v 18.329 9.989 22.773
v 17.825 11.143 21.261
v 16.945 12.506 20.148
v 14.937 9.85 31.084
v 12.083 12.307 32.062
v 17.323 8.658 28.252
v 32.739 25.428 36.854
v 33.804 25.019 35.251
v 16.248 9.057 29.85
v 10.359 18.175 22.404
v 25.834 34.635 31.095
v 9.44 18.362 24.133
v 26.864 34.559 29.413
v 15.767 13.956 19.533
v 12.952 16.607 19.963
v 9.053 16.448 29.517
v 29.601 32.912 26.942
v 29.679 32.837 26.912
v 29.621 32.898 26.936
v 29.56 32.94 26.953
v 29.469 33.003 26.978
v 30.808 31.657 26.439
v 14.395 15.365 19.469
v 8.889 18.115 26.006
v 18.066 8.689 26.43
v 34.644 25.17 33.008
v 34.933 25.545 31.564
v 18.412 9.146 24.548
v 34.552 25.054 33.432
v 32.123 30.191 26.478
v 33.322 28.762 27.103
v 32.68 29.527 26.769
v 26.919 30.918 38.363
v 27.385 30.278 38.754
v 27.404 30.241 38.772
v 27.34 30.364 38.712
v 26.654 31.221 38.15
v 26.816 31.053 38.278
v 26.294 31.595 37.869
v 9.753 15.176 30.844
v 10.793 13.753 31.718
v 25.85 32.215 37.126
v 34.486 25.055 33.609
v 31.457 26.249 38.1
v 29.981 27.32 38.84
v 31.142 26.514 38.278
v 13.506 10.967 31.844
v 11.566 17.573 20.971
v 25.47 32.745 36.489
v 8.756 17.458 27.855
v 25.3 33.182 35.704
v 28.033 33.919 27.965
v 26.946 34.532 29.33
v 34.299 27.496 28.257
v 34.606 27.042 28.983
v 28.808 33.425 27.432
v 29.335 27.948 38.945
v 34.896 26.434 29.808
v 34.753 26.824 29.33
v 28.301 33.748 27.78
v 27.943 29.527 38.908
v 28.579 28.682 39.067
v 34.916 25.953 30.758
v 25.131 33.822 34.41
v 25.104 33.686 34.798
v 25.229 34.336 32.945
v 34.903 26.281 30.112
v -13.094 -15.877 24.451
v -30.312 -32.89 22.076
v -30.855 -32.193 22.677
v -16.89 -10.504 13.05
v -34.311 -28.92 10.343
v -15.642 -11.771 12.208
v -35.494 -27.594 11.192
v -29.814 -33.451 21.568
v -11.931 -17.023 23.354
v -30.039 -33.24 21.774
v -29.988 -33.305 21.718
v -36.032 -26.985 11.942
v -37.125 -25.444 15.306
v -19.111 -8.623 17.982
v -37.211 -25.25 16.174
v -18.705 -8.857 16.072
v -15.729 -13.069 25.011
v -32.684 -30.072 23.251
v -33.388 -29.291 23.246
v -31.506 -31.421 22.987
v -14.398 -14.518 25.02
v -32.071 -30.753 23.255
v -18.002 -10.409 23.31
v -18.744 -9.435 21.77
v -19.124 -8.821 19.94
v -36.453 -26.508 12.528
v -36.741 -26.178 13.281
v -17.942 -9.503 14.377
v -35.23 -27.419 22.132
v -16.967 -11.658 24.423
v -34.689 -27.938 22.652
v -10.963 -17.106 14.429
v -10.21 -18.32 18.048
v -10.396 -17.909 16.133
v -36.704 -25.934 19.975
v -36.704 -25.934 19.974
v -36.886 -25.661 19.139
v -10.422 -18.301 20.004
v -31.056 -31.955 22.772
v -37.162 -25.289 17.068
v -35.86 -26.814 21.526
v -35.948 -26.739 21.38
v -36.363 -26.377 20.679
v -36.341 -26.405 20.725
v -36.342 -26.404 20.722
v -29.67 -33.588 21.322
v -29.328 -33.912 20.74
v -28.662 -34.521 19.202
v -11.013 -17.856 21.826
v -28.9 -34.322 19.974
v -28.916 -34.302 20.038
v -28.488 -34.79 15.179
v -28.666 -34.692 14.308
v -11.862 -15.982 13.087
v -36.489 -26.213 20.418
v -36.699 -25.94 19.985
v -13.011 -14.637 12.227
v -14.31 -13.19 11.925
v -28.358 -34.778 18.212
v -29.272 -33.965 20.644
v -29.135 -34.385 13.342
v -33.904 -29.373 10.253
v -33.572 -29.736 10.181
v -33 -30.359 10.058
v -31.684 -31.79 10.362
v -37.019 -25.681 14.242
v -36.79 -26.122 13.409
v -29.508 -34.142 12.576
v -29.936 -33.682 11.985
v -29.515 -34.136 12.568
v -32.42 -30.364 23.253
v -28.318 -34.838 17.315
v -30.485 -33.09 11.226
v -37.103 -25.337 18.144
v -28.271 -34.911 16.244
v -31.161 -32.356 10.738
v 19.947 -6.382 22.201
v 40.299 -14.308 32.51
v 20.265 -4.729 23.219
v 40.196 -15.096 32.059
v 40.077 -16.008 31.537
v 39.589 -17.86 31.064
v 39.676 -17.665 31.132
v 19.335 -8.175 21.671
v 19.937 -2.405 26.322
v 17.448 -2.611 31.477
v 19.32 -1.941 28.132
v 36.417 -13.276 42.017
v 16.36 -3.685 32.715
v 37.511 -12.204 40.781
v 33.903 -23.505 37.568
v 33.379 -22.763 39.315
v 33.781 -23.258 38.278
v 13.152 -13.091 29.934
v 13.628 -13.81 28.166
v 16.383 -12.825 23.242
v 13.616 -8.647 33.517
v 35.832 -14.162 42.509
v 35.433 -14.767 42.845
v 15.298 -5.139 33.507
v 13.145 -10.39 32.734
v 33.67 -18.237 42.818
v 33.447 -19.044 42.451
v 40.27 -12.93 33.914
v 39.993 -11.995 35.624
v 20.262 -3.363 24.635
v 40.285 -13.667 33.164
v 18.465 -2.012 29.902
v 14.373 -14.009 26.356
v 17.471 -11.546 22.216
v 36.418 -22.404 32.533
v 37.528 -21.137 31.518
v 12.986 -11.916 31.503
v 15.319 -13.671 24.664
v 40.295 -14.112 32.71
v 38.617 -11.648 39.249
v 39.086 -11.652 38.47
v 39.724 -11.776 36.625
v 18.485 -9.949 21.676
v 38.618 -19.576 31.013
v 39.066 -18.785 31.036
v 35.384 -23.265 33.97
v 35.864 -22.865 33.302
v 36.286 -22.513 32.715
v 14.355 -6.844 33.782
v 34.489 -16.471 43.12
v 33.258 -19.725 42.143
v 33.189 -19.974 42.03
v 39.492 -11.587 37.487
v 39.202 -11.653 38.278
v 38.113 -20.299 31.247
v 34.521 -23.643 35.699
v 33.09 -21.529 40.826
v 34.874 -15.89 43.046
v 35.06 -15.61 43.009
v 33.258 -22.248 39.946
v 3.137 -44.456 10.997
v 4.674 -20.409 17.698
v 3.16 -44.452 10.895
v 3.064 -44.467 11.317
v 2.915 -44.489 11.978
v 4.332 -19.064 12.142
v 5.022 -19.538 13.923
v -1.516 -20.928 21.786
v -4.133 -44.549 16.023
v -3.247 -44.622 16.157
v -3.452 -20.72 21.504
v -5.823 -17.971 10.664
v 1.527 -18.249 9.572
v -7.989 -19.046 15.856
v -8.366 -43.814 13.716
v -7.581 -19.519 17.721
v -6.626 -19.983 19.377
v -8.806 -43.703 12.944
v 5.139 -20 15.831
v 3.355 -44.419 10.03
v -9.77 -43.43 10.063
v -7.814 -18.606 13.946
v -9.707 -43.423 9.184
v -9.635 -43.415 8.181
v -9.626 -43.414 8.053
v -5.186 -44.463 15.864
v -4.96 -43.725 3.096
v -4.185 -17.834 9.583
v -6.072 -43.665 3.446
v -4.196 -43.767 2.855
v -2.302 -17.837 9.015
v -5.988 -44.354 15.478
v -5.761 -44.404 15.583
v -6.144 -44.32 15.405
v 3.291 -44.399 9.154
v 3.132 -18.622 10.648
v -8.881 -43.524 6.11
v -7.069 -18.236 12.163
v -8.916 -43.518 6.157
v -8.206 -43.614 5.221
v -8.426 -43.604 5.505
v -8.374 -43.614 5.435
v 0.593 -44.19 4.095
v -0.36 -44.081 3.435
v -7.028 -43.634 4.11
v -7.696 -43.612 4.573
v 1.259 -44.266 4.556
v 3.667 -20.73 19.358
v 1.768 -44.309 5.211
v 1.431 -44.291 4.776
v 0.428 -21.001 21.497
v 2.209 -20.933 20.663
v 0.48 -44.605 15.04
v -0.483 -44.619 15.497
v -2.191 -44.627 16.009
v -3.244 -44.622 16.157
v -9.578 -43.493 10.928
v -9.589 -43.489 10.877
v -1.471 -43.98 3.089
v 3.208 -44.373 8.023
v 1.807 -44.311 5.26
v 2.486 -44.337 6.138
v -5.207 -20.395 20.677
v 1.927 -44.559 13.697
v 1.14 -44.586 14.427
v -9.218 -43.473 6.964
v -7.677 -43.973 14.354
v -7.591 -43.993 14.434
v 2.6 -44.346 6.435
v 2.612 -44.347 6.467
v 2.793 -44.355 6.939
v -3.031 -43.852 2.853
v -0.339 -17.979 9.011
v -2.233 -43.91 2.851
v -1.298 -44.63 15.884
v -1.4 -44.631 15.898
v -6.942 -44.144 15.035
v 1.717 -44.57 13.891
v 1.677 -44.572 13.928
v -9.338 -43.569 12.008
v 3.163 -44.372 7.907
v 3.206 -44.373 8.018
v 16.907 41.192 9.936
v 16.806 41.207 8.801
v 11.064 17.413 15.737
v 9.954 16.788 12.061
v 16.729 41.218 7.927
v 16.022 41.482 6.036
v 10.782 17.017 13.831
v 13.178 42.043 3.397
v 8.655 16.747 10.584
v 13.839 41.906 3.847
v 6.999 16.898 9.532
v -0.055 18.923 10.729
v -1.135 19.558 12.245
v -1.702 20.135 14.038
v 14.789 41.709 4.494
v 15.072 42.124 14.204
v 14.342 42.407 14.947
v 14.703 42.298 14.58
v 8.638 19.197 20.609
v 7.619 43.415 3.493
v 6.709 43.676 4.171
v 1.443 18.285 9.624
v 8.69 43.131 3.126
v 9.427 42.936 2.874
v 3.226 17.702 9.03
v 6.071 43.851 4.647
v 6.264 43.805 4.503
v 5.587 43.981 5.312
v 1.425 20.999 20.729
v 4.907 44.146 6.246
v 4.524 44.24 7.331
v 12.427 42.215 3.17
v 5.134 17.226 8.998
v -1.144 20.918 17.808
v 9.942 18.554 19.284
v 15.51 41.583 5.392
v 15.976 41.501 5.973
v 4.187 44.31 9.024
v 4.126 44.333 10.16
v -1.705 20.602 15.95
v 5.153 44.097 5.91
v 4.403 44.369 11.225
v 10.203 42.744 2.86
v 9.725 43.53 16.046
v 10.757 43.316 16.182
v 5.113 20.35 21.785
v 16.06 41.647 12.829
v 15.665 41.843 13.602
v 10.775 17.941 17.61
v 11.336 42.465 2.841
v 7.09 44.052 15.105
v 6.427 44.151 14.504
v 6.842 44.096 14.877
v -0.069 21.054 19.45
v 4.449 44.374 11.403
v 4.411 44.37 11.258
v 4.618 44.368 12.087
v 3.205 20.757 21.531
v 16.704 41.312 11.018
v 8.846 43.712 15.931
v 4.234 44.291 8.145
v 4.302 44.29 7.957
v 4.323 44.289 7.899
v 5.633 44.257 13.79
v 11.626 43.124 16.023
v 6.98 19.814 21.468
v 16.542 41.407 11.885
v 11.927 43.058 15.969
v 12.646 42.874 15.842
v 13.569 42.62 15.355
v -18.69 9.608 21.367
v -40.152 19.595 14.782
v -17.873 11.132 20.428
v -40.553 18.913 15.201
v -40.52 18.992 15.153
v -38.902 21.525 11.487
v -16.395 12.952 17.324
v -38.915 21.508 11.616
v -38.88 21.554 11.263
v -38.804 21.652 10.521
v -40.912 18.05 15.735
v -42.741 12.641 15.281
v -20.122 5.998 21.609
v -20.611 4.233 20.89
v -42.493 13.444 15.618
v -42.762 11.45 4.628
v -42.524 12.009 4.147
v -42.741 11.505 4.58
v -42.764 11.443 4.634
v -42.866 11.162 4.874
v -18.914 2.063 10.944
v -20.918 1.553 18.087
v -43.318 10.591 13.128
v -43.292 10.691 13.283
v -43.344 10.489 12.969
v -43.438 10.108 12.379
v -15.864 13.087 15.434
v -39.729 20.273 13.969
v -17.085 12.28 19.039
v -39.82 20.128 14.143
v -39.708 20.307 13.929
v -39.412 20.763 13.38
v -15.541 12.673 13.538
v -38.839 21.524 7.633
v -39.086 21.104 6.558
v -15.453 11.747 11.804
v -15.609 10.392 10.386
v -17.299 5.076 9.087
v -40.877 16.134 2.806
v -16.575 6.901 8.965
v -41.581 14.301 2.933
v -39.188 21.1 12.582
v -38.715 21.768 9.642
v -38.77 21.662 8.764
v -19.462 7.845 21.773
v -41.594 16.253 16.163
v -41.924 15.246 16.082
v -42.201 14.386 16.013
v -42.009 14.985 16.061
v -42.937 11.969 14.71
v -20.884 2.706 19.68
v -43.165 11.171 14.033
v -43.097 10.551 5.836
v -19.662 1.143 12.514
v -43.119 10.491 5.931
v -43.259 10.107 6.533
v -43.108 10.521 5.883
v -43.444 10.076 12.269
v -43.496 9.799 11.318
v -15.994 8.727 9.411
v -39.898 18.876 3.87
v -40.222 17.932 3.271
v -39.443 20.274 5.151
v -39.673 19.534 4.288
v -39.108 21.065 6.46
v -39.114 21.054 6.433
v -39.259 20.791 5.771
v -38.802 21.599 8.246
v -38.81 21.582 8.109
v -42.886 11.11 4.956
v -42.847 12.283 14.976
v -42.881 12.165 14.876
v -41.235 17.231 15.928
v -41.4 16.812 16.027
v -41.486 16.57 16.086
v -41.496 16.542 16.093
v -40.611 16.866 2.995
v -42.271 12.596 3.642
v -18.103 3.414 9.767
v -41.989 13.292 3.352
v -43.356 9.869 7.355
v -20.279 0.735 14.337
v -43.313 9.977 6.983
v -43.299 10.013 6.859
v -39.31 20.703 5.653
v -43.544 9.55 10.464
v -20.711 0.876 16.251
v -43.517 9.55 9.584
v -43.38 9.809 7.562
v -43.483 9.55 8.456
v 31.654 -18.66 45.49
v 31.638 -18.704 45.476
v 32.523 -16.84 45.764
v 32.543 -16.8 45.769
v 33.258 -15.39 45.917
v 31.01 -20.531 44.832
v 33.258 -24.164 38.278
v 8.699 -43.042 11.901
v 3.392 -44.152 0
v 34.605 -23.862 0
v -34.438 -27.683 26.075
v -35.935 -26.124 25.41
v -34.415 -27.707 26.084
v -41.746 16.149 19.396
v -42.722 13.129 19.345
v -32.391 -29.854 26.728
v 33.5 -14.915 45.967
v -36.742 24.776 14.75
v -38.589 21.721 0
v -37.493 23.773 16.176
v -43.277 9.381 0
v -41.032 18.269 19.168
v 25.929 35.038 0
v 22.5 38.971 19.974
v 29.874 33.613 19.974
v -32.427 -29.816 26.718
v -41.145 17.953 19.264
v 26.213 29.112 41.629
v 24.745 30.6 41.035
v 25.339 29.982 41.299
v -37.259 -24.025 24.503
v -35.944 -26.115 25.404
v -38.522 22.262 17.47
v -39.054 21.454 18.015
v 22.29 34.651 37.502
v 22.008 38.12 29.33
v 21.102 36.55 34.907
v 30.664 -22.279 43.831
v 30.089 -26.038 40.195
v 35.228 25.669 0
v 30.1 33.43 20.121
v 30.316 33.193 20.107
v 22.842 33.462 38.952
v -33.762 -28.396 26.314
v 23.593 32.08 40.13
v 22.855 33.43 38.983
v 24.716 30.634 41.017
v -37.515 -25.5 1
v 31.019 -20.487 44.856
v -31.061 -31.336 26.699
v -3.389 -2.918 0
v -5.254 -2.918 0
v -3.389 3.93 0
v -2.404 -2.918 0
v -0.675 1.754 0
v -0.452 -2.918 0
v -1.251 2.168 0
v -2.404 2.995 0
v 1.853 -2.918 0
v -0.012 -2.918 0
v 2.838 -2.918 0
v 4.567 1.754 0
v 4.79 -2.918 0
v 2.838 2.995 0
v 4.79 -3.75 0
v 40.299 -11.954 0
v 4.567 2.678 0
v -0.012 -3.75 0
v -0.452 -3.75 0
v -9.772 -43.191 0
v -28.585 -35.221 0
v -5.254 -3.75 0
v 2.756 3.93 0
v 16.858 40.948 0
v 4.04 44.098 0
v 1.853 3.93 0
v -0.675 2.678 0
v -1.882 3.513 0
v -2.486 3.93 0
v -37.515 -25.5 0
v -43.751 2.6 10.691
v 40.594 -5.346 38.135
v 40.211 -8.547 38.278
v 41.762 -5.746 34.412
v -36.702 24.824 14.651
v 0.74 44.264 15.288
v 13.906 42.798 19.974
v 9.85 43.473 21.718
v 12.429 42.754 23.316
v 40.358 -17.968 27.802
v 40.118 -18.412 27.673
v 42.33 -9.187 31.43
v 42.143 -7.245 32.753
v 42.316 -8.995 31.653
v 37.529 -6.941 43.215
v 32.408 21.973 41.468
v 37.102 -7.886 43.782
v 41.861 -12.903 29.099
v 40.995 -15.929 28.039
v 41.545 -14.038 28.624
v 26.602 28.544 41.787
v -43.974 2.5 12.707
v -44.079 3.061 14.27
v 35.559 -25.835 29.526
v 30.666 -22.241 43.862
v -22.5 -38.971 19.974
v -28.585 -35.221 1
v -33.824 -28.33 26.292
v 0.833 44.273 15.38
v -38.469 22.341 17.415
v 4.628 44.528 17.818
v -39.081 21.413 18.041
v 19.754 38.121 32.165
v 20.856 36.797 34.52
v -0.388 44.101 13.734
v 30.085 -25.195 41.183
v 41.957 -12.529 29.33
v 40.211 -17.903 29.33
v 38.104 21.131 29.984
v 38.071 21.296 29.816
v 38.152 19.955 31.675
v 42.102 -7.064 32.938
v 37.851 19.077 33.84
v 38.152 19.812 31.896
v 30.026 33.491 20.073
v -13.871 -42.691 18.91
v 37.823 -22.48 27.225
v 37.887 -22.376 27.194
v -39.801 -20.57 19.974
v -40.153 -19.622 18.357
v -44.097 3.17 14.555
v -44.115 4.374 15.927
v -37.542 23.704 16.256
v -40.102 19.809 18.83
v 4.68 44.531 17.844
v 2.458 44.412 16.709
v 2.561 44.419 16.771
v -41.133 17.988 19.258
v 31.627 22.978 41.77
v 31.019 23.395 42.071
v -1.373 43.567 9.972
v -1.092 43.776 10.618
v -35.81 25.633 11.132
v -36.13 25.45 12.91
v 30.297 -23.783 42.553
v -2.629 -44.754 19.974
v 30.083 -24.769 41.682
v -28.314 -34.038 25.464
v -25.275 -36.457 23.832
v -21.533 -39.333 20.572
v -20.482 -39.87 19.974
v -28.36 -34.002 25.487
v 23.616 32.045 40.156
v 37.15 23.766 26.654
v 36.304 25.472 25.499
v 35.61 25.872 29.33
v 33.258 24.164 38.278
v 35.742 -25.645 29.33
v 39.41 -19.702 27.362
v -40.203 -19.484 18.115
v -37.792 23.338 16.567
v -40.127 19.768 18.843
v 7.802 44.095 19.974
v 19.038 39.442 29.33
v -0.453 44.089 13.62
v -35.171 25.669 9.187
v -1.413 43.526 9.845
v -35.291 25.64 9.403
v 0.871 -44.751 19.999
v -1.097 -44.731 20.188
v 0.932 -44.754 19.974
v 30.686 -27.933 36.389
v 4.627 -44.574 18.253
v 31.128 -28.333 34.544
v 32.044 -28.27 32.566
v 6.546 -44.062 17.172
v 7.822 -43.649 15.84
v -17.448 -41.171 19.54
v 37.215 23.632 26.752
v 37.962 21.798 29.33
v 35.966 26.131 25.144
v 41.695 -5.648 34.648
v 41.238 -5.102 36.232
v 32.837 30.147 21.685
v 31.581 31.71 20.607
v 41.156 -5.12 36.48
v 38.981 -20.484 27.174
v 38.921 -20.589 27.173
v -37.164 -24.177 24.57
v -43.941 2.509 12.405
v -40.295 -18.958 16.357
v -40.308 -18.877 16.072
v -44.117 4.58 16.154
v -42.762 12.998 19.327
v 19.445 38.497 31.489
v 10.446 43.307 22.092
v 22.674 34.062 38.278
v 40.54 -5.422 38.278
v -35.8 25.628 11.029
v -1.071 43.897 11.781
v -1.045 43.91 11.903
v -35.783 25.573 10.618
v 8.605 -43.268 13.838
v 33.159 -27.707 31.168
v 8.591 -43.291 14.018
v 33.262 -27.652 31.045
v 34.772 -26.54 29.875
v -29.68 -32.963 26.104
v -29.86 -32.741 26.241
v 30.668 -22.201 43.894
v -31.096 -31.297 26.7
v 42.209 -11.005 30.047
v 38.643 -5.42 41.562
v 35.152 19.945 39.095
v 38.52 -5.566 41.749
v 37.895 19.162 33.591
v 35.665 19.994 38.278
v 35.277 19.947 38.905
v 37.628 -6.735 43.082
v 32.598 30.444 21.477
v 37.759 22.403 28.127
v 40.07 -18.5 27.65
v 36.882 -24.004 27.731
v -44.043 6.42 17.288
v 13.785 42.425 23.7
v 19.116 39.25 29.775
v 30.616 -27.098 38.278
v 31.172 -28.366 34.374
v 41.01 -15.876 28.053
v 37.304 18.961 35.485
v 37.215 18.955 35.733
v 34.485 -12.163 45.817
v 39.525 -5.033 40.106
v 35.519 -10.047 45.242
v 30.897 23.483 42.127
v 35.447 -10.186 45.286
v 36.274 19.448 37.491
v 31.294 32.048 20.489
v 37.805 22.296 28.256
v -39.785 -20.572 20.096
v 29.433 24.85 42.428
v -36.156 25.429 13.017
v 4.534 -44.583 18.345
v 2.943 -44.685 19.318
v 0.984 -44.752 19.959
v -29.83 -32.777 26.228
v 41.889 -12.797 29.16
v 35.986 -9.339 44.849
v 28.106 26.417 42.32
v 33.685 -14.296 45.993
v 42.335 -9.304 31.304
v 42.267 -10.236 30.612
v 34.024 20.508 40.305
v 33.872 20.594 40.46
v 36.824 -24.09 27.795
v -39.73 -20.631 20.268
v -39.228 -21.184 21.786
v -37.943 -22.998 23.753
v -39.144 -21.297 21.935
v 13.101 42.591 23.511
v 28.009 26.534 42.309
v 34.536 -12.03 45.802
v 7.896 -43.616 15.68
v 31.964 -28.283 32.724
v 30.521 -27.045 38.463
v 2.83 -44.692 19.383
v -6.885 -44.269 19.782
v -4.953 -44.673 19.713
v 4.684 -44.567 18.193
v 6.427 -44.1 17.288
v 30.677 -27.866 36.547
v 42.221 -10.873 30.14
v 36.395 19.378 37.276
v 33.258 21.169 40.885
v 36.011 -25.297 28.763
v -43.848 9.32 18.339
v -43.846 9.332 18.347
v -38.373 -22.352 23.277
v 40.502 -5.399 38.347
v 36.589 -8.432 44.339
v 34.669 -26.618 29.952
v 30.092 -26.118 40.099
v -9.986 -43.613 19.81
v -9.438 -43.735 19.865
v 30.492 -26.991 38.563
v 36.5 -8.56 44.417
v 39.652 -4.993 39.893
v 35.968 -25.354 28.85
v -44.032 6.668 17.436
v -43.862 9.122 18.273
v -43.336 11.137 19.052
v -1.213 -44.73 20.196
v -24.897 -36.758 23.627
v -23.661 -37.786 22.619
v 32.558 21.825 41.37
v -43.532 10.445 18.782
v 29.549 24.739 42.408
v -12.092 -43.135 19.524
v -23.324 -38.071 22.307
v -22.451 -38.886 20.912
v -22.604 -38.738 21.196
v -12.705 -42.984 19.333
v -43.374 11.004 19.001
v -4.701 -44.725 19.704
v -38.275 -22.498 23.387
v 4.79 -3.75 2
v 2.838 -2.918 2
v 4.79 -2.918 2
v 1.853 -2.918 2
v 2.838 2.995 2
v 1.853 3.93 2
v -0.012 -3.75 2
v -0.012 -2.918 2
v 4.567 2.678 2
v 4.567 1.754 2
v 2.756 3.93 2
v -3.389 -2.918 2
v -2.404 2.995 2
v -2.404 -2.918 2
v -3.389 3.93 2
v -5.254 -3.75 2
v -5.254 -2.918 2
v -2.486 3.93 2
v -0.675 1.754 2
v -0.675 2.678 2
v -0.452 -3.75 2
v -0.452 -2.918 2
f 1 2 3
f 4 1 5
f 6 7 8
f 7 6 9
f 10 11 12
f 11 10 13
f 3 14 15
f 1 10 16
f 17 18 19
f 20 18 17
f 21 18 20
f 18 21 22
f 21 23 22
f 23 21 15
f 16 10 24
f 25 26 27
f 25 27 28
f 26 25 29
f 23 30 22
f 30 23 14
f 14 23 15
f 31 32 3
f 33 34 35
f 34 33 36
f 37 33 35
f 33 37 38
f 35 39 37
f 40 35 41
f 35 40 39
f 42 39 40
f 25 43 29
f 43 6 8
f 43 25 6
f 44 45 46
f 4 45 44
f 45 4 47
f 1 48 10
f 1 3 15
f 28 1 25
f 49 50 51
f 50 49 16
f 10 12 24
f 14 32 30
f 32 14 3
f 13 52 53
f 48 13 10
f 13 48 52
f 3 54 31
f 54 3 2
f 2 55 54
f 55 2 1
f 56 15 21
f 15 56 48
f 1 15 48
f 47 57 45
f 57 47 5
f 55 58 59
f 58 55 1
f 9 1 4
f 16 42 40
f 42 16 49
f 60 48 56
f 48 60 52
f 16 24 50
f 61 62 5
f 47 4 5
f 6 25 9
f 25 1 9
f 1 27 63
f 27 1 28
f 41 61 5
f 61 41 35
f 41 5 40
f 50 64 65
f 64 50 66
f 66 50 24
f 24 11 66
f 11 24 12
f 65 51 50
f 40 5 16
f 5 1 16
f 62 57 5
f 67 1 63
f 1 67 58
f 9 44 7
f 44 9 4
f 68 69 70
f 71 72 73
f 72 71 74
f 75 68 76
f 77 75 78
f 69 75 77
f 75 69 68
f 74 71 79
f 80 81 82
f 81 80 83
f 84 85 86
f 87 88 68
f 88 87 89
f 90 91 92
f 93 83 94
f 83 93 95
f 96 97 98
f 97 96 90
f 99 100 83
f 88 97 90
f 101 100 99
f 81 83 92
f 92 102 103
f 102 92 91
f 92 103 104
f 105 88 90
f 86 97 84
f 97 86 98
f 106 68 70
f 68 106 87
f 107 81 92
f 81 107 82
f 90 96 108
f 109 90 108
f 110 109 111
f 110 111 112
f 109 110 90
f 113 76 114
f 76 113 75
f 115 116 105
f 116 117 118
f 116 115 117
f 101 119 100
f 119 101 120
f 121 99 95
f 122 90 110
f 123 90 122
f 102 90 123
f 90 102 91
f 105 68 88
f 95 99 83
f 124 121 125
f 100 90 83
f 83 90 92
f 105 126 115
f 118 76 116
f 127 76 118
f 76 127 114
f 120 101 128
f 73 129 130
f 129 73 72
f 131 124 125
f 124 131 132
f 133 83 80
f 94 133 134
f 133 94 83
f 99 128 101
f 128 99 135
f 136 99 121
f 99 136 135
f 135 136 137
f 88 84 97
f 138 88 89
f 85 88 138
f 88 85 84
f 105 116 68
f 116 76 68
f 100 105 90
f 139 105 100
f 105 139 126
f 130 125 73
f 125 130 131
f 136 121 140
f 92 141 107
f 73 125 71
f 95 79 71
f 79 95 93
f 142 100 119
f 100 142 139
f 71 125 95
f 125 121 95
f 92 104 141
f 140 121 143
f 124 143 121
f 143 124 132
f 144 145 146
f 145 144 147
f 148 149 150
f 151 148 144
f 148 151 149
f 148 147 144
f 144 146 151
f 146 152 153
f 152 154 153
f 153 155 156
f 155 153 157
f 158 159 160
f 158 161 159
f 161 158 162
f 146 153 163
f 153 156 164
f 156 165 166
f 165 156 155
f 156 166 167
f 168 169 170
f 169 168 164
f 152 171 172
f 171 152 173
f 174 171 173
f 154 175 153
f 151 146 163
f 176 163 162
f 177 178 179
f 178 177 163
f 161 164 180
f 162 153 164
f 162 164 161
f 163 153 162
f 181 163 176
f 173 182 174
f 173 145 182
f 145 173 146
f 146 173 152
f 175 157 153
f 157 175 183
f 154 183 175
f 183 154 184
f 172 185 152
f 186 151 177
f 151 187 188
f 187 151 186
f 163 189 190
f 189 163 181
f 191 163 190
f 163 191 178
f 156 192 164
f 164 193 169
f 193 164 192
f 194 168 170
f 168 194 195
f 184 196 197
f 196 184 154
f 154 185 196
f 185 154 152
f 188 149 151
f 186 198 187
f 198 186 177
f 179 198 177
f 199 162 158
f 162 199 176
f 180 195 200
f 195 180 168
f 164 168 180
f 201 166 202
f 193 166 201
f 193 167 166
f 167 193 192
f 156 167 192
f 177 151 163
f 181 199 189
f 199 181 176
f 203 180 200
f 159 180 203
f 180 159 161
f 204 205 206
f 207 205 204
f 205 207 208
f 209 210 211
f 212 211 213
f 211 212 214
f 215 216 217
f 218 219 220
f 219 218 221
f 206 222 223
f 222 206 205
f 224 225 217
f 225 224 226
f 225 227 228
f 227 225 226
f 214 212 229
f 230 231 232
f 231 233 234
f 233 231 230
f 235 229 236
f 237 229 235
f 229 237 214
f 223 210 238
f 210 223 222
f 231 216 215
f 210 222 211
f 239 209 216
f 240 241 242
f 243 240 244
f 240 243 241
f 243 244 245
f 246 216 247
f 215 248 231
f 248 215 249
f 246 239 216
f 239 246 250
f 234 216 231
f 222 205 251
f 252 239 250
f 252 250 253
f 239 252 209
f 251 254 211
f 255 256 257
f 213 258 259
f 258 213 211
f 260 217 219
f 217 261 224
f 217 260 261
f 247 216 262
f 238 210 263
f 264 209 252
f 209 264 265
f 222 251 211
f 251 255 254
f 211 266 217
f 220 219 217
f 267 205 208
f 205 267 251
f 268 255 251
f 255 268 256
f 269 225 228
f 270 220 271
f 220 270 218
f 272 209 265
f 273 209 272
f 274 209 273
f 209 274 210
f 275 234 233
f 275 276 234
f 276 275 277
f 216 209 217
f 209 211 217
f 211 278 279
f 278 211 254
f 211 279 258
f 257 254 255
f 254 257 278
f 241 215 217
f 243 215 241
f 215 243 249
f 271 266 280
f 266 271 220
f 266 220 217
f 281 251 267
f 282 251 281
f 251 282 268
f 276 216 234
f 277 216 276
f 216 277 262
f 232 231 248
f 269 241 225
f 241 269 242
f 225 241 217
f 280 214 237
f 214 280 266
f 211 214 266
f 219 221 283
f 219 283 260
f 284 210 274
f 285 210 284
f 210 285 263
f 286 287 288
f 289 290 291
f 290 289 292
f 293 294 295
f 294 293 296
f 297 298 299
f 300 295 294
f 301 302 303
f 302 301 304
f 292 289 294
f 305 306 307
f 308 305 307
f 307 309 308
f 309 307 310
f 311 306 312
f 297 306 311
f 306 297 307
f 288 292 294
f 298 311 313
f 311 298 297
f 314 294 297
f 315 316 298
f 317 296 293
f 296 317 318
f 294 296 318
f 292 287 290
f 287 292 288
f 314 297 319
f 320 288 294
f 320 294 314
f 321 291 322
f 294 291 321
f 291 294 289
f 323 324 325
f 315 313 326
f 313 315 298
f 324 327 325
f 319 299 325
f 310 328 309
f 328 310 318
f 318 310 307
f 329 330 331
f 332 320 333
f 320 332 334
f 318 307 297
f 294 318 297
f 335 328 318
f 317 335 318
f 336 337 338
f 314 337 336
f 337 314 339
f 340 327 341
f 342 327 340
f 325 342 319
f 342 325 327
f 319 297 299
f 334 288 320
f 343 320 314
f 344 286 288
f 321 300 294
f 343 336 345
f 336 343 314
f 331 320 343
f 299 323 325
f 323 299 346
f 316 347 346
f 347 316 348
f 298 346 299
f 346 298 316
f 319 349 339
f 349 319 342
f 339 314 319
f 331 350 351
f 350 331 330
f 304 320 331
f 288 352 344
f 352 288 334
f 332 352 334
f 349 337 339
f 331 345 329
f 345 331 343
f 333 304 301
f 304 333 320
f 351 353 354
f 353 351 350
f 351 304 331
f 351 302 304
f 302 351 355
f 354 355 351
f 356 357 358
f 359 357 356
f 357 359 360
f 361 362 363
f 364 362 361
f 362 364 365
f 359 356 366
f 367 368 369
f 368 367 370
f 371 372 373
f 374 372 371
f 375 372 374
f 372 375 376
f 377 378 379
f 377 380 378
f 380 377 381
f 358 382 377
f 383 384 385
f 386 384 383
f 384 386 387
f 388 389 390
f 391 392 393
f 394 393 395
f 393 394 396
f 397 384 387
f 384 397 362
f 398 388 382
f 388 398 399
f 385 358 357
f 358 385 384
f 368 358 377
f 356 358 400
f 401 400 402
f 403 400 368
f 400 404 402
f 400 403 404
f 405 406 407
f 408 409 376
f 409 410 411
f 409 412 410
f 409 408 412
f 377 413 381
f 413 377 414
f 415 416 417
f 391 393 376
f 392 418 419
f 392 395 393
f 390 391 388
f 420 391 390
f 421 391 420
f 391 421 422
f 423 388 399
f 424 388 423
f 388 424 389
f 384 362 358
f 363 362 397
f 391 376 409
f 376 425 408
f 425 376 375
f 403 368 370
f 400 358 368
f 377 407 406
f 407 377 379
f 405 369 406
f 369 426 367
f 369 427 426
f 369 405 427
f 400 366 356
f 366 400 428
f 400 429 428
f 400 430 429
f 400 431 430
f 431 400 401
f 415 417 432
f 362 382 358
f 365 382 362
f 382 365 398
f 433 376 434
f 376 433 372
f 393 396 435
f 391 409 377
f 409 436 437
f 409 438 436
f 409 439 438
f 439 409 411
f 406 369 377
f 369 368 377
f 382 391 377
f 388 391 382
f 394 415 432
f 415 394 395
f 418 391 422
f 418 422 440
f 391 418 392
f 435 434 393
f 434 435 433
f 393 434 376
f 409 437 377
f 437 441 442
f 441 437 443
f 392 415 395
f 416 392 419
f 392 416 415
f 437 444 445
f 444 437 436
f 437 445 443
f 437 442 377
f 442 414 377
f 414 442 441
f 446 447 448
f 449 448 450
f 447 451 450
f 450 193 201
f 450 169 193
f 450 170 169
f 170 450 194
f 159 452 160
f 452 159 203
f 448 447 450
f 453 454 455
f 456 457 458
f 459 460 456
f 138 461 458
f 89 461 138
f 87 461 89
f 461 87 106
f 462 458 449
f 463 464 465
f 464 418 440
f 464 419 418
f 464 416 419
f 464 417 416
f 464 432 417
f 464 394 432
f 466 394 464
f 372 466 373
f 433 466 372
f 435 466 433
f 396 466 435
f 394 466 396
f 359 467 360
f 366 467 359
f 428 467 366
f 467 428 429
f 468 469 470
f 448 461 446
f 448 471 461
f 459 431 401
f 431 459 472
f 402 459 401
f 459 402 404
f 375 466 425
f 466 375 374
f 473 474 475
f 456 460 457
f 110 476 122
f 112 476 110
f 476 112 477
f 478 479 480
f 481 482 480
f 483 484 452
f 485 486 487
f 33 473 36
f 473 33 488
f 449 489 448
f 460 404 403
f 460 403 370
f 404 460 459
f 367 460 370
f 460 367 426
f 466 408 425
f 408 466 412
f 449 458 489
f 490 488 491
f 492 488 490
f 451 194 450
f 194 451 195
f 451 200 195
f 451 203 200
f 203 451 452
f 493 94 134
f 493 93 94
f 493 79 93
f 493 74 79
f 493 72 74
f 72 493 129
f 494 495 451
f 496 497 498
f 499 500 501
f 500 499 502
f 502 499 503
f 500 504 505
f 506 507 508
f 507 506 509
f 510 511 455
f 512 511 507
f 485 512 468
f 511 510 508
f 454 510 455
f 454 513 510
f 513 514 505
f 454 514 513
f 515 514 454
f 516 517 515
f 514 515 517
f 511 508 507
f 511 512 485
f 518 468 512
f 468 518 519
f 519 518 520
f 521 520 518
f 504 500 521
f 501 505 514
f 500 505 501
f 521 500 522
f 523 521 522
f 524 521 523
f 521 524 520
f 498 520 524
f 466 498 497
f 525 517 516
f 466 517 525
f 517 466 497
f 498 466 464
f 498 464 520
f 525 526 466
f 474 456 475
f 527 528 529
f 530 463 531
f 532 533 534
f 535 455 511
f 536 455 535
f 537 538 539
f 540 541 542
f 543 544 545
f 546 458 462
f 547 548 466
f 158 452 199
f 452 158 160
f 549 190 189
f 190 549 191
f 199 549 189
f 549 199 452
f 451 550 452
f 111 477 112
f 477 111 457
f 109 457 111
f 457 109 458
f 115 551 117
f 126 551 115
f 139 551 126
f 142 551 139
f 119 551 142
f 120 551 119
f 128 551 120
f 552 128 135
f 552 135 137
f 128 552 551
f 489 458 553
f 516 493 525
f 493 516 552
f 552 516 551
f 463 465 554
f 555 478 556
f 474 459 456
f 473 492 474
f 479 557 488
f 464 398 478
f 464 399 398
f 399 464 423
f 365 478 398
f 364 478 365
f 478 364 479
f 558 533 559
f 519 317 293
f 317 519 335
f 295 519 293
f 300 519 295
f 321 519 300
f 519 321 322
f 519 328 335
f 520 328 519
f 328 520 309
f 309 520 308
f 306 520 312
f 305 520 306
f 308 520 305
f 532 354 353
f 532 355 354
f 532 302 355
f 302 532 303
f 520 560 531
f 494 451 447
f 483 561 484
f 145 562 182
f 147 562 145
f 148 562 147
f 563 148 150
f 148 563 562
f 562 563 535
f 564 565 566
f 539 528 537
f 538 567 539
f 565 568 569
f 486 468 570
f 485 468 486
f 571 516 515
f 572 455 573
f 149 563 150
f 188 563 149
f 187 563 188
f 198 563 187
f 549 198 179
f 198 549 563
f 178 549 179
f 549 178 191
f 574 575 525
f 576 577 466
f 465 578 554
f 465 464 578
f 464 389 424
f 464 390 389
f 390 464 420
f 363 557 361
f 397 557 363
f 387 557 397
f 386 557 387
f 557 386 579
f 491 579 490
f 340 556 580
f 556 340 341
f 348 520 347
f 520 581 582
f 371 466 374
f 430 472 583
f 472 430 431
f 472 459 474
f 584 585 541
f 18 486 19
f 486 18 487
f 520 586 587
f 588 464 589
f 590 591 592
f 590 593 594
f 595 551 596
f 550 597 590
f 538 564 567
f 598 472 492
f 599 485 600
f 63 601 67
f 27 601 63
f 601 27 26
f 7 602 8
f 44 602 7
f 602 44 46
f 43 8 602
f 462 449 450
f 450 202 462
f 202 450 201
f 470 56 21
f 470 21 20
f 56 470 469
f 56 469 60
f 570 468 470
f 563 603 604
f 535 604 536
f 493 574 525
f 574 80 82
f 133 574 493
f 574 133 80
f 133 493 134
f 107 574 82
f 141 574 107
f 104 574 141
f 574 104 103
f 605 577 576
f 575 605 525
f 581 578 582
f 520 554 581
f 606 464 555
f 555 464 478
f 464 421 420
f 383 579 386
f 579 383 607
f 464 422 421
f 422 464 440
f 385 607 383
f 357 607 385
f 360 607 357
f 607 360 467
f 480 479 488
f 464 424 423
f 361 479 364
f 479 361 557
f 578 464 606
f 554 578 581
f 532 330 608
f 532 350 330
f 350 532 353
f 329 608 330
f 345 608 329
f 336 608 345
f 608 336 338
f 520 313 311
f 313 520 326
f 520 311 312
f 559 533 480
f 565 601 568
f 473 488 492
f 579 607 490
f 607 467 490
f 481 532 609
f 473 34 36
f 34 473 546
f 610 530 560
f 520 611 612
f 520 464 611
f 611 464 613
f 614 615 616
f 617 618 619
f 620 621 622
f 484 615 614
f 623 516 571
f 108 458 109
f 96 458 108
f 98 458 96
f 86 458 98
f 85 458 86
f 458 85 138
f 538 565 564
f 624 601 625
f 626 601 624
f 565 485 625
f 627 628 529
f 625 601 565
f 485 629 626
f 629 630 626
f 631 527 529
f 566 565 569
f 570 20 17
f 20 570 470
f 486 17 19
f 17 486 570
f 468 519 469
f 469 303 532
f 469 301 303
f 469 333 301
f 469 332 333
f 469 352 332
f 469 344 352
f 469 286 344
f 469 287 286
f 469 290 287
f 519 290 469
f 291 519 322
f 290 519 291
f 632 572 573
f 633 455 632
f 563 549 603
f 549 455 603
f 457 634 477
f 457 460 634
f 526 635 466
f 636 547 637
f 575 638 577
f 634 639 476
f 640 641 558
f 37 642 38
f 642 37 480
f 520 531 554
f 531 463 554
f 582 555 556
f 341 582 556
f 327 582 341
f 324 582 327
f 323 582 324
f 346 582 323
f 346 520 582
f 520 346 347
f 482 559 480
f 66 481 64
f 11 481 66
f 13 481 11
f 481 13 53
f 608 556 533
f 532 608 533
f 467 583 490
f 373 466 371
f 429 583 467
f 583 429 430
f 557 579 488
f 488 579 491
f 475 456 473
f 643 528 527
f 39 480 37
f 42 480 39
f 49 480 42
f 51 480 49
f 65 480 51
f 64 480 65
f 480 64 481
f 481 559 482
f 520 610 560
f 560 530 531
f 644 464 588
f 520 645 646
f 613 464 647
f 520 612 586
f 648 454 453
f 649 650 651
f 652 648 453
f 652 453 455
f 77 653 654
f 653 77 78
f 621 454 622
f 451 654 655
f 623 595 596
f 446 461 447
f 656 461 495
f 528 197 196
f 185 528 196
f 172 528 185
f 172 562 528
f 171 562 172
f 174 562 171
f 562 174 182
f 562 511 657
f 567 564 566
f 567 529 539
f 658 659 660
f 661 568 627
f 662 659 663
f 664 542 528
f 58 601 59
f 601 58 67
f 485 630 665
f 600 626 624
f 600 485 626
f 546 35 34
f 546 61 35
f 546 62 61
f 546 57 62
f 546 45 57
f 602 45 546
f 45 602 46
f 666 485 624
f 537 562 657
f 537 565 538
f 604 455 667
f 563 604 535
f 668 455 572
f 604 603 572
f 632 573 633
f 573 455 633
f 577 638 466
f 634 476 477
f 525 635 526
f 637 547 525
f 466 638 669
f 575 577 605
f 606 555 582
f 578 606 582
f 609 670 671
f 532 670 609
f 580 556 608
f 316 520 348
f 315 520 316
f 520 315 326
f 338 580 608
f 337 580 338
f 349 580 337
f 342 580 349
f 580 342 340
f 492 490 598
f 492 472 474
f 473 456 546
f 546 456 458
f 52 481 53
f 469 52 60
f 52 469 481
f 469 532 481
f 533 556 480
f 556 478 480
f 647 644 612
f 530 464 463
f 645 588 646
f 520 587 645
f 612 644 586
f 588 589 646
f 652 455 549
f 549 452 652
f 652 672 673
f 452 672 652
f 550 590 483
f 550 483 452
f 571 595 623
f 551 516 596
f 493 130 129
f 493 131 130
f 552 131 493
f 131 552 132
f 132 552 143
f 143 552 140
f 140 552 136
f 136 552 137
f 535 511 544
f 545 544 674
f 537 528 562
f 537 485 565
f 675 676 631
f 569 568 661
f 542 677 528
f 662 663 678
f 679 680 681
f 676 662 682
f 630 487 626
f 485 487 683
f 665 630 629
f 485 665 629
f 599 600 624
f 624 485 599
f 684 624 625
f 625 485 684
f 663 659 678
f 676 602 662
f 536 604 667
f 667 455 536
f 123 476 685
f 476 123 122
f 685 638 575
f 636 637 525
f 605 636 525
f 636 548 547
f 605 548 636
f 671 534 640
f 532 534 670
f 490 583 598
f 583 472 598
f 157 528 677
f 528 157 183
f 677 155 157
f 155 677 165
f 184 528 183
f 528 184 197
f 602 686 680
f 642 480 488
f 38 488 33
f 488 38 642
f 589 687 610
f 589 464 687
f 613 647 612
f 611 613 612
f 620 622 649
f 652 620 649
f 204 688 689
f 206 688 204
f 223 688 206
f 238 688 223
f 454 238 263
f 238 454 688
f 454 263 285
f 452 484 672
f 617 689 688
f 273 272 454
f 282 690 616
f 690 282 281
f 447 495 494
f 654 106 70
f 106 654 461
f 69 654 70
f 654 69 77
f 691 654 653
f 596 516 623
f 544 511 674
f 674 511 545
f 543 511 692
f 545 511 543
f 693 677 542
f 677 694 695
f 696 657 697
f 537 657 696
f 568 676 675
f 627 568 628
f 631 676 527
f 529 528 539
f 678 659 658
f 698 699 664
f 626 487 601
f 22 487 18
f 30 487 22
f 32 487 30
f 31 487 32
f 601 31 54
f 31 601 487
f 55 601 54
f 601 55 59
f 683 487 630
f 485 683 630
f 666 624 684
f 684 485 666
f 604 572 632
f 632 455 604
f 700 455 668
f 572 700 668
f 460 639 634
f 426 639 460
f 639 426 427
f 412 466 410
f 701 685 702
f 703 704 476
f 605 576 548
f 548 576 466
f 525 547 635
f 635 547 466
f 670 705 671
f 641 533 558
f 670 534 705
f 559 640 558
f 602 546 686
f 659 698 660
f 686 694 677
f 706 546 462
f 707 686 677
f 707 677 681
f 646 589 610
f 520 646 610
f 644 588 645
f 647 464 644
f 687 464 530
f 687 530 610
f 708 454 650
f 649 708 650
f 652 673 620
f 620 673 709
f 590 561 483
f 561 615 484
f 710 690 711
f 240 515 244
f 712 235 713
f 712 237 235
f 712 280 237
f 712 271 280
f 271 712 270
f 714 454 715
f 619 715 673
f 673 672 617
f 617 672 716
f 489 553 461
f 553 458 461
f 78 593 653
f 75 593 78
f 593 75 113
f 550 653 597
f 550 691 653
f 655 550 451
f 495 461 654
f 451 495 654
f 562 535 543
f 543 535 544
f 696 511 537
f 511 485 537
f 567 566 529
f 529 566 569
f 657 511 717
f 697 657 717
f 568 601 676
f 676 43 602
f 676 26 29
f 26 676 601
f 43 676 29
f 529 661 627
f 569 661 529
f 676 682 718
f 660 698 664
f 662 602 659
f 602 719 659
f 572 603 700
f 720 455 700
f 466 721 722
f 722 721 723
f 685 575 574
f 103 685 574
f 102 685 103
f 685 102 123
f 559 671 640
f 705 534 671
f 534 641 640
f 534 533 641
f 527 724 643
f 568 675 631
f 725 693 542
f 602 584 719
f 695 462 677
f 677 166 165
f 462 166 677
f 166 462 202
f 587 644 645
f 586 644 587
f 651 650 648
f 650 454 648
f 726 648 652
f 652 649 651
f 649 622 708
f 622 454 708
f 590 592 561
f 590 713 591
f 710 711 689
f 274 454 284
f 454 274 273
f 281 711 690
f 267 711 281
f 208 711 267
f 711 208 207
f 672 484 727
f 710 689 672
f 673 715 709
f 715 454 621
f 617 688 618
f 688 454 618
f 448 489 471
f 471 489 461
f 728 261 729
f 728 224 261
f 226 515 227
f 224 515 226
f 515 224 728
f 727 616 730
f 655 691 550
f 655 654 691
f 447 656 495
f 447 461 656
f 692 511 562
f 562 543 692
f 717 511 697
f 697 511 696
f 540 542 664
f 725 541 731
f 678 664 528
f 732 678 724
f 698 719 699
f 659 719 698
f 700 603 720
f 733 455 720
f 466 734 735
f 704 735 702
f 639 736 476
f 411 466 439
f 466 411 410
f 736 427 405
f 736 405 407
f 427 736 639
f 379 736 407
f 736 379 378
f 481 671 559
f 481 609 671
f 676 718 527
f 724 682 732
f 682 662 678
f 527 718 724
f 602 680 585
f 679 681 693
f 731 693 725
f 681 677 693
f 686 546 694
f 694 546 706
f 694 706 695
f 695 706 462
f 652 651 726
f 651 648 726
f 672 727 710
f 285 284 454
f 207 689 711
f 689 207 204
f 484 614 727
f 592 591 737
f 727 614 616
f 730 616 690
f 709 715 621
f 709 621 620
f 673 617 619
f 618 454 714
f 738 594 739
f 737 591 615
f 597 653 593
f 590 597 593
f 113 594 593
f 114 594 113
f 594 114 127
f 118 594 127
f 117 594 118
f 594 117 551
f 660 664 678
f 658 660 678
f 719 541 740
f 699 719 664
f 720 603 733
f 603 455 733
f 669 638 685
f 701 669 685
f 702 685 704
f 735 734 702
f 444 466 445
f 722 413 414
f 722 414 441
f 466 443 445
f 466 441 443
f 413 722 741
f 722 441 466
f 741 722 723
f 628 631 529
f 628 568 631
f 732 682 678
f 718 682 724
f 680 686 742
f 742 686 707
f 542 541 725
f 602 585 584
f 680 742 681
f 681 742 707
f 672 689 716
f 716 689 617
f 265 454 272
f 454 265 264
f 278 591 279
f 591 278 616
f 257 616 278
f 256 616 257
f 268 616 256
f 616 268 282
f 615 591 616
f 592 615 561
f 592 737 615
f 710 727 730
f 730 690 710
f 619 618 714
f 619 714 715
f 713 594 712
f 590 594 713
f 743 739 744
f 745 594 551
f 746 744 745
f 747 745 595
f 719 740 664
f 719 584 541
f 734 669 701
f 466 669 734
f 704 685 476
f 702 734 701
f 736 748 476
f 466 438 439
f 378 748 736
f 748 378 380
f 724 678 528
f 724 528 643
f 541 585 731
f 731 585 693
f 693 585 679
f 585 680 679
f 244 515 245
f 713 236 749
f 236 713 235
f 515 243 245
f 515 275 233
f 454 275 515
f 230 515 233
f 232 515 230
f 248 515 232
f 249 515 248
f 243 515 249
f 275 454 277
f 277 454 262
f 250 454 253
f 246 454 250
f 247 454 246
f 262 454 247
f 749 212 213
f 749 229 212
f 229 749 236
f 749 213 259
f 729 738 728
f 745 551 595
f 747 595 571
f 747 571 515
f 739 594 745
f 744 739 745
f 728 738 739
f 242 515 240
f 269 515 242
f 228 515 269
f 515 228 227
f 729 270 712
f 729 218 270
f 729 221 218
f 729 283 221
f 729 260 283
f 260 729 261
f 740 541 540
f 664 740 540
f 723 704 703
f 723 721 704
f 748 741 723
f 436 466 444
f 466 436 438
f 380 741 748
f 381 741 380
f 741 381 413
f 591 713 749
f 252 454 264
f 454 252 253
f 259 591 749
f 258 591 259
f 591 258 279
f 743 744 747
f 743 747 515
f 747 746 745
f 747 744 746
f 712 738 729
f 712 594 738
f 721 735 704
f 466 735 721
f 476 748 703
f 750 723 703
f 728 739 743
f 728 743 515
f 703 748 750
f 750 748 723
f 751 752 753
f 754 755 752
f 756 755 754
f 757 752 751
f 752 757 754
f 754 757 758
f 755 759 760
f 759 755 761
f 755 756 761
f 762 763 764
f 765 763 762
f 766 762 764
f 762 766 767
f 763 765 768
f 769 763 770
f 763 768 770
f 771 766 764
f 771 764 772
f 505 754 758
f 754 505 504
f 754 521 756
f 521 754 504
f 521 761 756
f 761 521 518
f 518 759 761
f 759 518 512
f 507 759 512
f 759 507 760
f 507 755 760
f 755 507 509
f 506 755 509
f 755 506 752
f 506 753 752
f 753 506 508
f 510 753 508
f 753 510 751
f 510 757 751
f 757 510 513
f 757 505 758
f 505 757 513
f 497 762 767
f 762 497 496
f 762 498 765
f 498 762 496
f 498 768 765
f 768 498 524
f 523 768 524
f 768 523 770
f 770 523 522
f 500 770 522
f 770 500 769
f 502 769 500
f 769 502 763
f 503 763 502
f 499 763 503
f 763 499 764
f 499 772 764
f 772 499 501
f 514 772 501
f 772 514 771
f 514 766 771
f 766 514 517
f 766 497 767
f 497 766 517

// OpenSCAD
difference() {
	difference() {
		difference() {
			hull() {
				union() {
					union() {
						rotate(a = 44.7886434991, v = [0, 0, 1]) {
							translate(v = [0, -6.6000000000, 0]) {
								cube(size = [43.0855385085, 13.2000000000, 1]);
							}
						}
						rotate(a = -137.4284145433, v = [0, 0, 1]) {
							translate(v = [0, -6.6000000000, 0]) {
								cube(size = [44.8787159826, 13.2000000000, 1]);
							}
						}
						rotate(a = -25.5551377076, v = [0, 0, 1]) {
							translate(v = [0, -6.6000000000, 0]) {
								cube(size = [41.5129387036, 13.2000000000, 1]);
							}
						}
						rotate(a = -94.1777278702, v = [0, 0, 1]) {
							translate(v = [0, -6.6000000000, 0]) {
								cube(size = [43.7878214328, 13.2000000000, 1]);
							}
						}
						rotate(a = 76.1941204399, v = [0, 0, 1]) {
							translate(v = [0, -6.6000000000, 0]) {
								cube(size = [43.7878237981, 13.2000000000, 1]);
							}
						}
						rotate(a = 159.1977941195, v = [0, 0, 1]) {
							translate(v = [0, -6.6000000000, 0]) {
								cube(size = [43.7878219417, 13.2000000000, 1]);
							}
						}
					}
					translate(v = [0, 0, 19.9743286130]) {
						intersection() {
							hull() {
								rotate(a = 73.2270811909, v = [-0.6745215807, 0.6795164716, -0.0000000050]) {
									cylinder(h = 45, r = 9.6000000000);
								}
								rotate(a = 94.2076451547, v = [0.6746874302, -0.7344477709, 0.0000000598]) {
									cylinder(h = 45, r = 9.6000000000);
								}
								rotate(a = 67.2957656601, v = [0.3979521676, 0.8322607608, -0.0000012302]) {
									cylinder(h = 45, r = 9.6000000000);
								}
								rotate(a = 103.3289646367, v = [0.9704769150, -0.0708878867, -0.0000008996]) {
									cylinder(h = 45, r = 9.6000000000);
								}
								rotate(a = 103.3288209429, v = [-0.9449510012, 0.2322052229, 0.0000007127]) {
									cylinder(h = 45, r = 9.6000000000);
								}
								rotate(a = 103.3289337213, v = [-0.3455765946, -0.9096304714, 0.0000012552]) {
									cylinder(h = 45, r = 9.6000000000);
								}
							}
							sphere(r = 45);
						}
					}
				}
			}
			translate(v = [0, 0, 19.9743286130]) {
				rotate(a = 73.2270811909, v = [-0.6745215807, 0.6795164716, -0.0000000050]) {
					translate(v = [0, 0, 20]) {
						cylinder(h = 45, r = 6.6000000000);
					}
				}
				rotate(a = 94.2076451547, v = [0.6746874302, -0.7344477709, 0.0000000598]) {
					translate(v = [0, 0, 20]) {
						cylinder(h = 45, r = 6.6000000000);
					}
				}
				rotate(a = 67.2957656601, v = [0.3979521676, 0.8322607608, -0.0000012302]) {
					translate(v = [0, 0, 20]) {
						cylinder(h = 45, r = 6.6000000000);
					}
				}
				rotate(a = 103.3289646367, v = [0.9704769150, -0.0708878867, -0.0000008996]) {
					translate(v = [0, 0, 20]) {
						cylinder(h = 45, r = 6.6000000000);
					}
				}
				rotate(a = 103.3288209429, v = [-0.9449510012, 0.2322052229, 0.0000007127]) {
					translate(v = [0, 0, 20]) {
						cylinder(h = 45, r = 6.6000000000);
					}
				}
				rotate(a = 103.3289337213, v = [-0.3455765946, -0.9096304714, 0.0000012552]) {
					translate(v = [0, 0, 20]) {
						cylinder(h = 45, r = 6.6000000000);
					}
				}
			}
		}
		translate(v = [-100, -100, -100]) {
			cube(size = [200, 200, 100]);
		}
	}
	translate(v = [0, 0, 2]) {
		rotate(a = 180, v = [0, 1, 0]) {
			linear_extrude(height = 3) {
				text(halign = "center", size = 8, text = "11", valign = "center");
			}
		}
	}
}
